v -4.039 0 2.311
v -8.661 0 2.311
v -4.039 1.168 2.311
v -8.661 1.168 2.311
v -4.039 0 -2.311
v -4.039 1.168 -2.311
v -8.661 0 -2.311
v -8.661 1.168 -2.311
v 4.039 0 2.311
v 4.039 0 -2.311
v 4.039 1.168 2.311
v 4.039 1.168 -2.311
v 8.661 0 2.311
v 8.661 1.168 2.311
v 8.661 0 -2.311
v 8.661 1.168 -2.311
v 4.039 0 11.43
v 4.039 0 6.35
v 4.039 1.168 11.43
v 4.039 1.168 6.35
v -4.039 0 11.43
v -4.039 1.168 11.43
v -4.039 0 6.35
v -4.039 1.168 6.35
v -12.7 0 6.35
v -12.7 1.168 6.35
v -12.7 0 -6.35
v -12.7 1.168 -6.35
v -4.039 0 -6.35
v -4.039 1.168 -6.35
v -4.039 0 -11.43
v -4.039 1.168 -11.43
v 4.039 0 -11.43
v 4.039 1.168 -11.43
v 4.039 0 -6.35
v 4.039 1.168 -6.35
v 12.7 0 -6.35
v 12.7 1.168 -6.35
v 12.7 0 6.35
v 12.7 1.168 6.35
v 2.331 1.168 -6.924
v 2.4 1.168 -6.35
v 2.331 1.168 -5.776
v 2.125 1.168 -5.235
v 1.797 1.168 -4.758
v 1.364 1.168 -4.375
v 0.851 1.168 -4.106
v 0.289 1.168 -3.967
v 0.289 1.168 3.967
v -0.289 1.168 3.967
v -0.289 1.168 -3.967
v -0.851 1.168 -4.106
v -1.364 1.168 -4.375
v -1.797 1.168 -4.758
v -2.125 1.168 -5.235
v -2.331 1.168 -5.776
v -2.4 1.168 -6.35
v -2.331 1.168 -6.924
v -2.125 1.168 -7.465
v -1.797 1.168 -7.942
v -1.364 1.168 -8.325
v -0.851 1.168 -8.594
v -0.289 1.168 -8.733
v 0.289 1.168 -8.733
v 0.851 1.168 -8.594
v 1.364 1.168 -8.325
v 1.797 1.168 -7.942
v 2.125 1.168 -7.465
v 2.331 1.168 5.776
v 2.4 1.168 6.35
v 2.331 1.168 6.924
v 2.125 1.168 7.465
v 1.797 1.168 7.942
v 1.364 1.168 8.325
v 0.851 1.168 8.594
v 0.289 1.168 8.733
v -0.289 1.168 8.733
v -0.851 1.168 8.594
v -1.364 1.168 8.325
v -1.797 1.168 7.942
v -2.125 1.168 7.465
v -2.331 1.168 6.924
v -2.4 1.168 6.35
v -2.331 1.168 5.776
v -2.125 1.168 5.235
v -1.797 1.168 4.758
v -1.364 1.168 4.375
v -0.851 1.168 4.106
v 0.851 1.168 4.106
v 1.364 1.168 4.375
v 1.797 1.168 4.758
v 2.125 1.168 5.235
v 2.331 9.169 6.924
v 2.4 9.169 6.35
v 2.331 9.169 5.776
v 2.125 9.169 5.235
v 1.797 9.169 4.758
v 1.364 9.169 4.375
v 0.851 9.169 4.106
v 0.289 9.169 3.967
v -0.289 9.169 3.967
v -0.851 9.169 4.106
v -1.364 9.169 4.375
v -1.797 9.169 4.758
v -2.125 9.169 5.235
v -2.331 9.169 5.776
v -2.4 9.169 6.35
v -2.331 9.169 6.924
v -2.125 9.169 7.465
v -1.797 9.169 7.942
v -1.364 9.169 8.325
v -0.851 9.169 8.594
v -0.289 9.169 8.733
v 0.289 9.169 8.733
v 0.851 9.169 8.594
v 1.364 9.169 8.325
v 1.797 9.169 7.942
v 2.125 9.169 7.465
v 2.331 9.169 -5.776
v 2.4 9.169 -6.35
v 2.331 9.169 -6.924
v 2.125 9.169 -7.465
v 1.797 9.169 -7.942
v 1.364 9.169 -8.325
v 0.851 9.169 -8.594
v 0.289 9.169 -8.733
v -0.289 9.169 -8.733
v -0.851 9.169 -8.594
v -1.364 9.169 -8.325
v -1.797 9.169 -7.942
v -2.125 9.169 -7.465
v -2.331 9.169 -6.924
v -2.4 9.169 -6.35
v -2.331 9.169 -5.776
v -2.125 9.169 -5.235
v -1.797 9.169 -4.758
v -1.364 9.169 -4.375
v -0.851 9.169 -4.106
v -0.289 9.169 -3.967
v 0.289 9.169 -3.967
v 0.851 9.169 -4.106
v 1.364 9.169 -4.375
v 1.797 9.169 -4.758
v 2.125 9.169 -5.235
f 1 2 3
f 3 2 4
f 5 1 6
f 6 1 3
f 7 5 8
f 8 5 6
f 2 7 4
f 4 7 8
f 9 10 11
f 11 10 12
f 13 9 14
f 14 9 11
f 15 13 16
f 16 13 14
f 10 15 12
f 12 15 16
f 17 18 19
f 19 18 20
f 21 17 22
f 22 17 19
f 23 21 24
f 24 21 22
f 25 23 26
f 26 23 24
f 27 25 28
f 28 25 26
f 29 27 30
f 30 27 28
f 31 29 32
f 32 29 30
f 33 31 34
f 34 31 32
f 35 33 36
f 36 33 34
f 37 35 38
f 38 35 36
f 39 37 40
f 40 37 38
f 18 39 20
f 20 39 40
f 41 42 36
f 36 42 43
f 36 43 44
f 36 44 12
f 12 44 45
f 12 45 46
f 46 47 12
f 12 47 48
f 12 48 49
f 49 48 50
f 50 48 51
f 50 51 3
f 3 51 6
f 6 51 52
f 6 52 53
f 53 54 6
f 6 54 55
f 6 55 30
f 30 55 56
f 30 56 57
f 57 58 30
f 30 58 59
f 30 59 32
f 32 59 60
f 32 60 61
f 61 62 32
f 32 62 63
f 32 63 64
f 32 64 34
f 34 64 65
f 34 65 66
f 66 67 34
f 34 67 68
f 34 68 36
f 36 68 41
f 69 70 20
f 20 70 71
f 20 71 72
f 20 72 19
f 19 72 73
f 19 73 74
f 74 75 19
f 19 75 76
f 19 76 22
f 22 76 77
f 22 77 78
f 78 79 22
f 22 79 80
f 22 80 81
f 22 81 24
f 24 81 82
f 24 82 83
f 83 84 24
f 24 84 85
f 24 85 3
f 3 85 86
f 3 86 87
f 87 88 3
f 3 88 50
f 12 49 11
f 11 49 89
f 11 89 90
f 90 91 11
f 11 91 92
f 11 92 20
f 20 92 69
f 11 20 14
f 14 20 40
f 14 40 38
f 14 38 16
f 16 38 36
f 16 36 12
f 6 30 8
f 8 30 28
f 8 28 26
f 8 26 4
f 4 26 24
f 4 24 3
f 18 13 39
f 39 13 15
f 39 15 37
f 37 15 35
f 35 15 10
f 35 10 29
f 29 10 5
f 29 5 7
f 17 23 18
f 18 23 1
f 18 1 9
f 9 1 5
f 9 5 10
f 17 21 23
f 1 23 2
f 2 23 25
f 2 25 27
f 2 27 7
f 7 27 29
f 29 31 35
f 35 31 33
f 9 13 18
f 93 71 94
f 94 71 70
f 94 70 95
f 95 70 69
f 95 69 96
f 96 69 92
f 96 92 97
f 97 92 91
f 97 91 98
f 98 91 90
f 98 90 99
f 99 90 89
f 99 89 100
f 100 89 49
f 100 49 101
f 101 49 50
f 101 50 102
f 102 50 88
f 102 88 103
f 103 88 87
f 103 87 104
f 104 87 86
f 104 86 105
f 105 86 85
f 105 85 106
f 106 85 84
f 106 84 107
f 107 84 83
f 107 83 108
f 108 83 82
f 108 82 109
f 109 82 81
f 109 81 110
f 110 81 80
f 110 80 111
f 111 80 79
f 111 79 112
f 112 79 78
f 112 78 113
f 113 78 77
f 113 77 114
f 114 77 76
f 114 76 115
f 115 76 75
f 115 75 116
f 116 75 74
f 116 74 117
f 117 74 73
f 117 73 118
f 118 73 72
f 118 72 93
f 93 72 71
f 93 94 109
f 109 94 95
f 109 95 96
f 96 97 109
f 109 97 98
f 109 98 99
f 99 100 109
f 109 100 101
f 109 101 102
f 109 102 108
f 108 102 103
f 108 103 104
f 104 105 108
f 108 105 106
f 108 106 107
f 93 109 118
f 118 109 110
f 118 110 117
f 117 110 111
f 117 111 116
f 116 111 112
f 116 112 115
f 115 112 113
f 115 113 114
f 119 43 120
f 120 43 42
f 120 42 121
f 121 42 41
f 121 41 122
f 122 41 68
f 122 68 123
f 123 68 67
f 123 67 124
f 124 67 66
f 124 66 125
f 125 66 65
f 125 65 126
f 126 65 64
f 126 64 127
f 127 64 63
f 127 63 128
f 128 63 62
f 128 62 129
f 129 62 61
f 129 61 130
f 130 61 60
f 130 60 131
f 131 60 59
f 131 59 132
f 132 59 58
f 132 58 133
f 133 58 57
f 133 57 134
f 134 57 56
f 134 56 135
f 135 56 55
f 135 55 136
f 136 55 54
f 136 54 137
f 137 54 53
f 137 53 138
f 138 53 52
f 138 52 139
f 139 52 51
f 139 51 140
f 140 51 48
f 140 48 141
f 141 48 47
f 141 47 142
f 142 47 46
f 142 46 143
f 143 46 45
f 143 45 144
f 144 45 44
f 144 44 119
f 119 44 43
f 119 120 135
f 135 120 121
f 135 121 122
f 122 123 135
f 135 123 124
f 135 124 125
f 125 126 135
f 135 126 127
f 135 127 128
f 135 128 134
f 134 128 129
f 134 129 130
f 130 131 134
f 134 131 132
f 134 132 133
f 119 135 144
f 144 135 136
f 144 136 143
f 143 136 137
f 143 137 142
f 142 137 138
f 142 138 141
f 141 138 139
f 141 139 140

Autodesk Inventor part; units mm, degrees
ref_plane "YZ Plane" through (0, 0, 0) normal (1, 0, 0) x (0, 1, 0)
ref_plane "XZ Plane" through (0, 0, 0) normal (0, 1, 0) x (-1, 0, 0)
ref_plane "XY Plane" through (0, 0, 0) normal (0, 0, 1) x (1, 0, 0)
sketch "Sketch7" plane through (0, 0, 0) normal (0, 1, 0) x (-1, 0, 0)
  line L0 (12.7, 6.35) -> (4.0386, 6.35)
  line L1 (-12.7, 6.35) -> (-12.7, -6.35)
  line L2 (-12.7, -6.35) -> (-4.0386, -6.35)
  line L3 (12.7, -6.35) -> (12.7, 6.35)
  line L4 (12.7, 6.35) -> (-12.7, -6.35) construction
  line L5 (-12.7, 6.35) -> (12.7, -6.35) construction
  line L6 (8.6614, 2.3114) -> (4.0386, 2.3114)
  line L7 (4.0386, 2.3114) -> (4.0386, -2.3114)
  line L8 (4.0386, -2.3114) -> (8.6614, -2.3114)
  line L9 (8.6614, -2.3114) -> (8.6614, 2.3114)
  line L10 (8.6614, 2.3114) -> (4.0386, -2.3114) construction
  line L11 (4.0386, 2.3114) -> (8.6614, -2.3114) construction
  line L12 (-8.6614, 2.3114) -> (-4.0386, 2.3114)
  line L13 (-4.0386, 2.3114) -> (-4.0386, -2.3114)
  line L14 (-4.0386, -2.3114) -> (-8.6614, -2.3114)
  line L15 (-8.6614, -2.3114) -> (-8.6614, 2.3114)
  line L16 (-8.6614, 2.3114) -> (-4.0386, -2.3114) construction
  line L17 (-4.0386, 2.3114) -> (-8.6614, -2.3114) construction
  line L18 (4.0386, 6.35) -> (4.0386, 11.43)
  line L19 (4.0386, 11.43) -> (-4.0386, 11.43)
  line L20 (-4.0386, 11.43) -> (-4.0386, 6.35)
  line L21 (-4.0386, -6.35) -> (-4.0386, -11.43)
  line L22 (-4.0386, -11.43) -> (4.0386, -11.43)
  line L23 (4.0386, -11.43) -> (4.0386, -6.35)
  line L24 (-4.0386, 6.35) -> (-12.7, 6.35)
  line L25 (4.0386, -6.35) -> (12.7, -6.35)
  point P0 (0, 0)
  point P1 (6.35, 0)
  point P2 (-6.35, 0)
  dimension "d29" = 25.4
  dimension "d30" = 12.7
  dimension "d31" = 4.6228
  dimension "d32" = 4.6228
  dimension "d33" = 4.6228
  dimension "d34" = 4.6228
  dimension "d35" = 12.7
  dimension "d36" = 6.35
  dimension "d37" = 5.08
  dimension "d40" = 5.08
extrude "Extrusion2" add sketch "Sketch7" along normal blind 1.1684
sketch "Sketch8" plane through (0, 1.1684, 0) normal (0, 1, 0) x (1, 0, 0)
  circle A0 centre (0, -6.35) radius 2.4003
  point P0 (0, 0)
  dimension "d47" = 4.8006
  dimension "d49" = 6.35
sketch "Sketch9" plane through (0, 1.1684, 0) normal (0, 1, 0) x (1, 0, 0)
  circle A0 centre (0, 6.35) radius 2.4003
  point P0 (0, 0)
  dimension "d51" = 4.8006
  dimension "d52" = 6.35
extrude "Extrusion3" add sketch "Sketch8" along normal blind 8.001
extrude "Extrusion4" add sketch "Sketch9" along normal blind 8.001
properties part number "VexLegoWidget"
